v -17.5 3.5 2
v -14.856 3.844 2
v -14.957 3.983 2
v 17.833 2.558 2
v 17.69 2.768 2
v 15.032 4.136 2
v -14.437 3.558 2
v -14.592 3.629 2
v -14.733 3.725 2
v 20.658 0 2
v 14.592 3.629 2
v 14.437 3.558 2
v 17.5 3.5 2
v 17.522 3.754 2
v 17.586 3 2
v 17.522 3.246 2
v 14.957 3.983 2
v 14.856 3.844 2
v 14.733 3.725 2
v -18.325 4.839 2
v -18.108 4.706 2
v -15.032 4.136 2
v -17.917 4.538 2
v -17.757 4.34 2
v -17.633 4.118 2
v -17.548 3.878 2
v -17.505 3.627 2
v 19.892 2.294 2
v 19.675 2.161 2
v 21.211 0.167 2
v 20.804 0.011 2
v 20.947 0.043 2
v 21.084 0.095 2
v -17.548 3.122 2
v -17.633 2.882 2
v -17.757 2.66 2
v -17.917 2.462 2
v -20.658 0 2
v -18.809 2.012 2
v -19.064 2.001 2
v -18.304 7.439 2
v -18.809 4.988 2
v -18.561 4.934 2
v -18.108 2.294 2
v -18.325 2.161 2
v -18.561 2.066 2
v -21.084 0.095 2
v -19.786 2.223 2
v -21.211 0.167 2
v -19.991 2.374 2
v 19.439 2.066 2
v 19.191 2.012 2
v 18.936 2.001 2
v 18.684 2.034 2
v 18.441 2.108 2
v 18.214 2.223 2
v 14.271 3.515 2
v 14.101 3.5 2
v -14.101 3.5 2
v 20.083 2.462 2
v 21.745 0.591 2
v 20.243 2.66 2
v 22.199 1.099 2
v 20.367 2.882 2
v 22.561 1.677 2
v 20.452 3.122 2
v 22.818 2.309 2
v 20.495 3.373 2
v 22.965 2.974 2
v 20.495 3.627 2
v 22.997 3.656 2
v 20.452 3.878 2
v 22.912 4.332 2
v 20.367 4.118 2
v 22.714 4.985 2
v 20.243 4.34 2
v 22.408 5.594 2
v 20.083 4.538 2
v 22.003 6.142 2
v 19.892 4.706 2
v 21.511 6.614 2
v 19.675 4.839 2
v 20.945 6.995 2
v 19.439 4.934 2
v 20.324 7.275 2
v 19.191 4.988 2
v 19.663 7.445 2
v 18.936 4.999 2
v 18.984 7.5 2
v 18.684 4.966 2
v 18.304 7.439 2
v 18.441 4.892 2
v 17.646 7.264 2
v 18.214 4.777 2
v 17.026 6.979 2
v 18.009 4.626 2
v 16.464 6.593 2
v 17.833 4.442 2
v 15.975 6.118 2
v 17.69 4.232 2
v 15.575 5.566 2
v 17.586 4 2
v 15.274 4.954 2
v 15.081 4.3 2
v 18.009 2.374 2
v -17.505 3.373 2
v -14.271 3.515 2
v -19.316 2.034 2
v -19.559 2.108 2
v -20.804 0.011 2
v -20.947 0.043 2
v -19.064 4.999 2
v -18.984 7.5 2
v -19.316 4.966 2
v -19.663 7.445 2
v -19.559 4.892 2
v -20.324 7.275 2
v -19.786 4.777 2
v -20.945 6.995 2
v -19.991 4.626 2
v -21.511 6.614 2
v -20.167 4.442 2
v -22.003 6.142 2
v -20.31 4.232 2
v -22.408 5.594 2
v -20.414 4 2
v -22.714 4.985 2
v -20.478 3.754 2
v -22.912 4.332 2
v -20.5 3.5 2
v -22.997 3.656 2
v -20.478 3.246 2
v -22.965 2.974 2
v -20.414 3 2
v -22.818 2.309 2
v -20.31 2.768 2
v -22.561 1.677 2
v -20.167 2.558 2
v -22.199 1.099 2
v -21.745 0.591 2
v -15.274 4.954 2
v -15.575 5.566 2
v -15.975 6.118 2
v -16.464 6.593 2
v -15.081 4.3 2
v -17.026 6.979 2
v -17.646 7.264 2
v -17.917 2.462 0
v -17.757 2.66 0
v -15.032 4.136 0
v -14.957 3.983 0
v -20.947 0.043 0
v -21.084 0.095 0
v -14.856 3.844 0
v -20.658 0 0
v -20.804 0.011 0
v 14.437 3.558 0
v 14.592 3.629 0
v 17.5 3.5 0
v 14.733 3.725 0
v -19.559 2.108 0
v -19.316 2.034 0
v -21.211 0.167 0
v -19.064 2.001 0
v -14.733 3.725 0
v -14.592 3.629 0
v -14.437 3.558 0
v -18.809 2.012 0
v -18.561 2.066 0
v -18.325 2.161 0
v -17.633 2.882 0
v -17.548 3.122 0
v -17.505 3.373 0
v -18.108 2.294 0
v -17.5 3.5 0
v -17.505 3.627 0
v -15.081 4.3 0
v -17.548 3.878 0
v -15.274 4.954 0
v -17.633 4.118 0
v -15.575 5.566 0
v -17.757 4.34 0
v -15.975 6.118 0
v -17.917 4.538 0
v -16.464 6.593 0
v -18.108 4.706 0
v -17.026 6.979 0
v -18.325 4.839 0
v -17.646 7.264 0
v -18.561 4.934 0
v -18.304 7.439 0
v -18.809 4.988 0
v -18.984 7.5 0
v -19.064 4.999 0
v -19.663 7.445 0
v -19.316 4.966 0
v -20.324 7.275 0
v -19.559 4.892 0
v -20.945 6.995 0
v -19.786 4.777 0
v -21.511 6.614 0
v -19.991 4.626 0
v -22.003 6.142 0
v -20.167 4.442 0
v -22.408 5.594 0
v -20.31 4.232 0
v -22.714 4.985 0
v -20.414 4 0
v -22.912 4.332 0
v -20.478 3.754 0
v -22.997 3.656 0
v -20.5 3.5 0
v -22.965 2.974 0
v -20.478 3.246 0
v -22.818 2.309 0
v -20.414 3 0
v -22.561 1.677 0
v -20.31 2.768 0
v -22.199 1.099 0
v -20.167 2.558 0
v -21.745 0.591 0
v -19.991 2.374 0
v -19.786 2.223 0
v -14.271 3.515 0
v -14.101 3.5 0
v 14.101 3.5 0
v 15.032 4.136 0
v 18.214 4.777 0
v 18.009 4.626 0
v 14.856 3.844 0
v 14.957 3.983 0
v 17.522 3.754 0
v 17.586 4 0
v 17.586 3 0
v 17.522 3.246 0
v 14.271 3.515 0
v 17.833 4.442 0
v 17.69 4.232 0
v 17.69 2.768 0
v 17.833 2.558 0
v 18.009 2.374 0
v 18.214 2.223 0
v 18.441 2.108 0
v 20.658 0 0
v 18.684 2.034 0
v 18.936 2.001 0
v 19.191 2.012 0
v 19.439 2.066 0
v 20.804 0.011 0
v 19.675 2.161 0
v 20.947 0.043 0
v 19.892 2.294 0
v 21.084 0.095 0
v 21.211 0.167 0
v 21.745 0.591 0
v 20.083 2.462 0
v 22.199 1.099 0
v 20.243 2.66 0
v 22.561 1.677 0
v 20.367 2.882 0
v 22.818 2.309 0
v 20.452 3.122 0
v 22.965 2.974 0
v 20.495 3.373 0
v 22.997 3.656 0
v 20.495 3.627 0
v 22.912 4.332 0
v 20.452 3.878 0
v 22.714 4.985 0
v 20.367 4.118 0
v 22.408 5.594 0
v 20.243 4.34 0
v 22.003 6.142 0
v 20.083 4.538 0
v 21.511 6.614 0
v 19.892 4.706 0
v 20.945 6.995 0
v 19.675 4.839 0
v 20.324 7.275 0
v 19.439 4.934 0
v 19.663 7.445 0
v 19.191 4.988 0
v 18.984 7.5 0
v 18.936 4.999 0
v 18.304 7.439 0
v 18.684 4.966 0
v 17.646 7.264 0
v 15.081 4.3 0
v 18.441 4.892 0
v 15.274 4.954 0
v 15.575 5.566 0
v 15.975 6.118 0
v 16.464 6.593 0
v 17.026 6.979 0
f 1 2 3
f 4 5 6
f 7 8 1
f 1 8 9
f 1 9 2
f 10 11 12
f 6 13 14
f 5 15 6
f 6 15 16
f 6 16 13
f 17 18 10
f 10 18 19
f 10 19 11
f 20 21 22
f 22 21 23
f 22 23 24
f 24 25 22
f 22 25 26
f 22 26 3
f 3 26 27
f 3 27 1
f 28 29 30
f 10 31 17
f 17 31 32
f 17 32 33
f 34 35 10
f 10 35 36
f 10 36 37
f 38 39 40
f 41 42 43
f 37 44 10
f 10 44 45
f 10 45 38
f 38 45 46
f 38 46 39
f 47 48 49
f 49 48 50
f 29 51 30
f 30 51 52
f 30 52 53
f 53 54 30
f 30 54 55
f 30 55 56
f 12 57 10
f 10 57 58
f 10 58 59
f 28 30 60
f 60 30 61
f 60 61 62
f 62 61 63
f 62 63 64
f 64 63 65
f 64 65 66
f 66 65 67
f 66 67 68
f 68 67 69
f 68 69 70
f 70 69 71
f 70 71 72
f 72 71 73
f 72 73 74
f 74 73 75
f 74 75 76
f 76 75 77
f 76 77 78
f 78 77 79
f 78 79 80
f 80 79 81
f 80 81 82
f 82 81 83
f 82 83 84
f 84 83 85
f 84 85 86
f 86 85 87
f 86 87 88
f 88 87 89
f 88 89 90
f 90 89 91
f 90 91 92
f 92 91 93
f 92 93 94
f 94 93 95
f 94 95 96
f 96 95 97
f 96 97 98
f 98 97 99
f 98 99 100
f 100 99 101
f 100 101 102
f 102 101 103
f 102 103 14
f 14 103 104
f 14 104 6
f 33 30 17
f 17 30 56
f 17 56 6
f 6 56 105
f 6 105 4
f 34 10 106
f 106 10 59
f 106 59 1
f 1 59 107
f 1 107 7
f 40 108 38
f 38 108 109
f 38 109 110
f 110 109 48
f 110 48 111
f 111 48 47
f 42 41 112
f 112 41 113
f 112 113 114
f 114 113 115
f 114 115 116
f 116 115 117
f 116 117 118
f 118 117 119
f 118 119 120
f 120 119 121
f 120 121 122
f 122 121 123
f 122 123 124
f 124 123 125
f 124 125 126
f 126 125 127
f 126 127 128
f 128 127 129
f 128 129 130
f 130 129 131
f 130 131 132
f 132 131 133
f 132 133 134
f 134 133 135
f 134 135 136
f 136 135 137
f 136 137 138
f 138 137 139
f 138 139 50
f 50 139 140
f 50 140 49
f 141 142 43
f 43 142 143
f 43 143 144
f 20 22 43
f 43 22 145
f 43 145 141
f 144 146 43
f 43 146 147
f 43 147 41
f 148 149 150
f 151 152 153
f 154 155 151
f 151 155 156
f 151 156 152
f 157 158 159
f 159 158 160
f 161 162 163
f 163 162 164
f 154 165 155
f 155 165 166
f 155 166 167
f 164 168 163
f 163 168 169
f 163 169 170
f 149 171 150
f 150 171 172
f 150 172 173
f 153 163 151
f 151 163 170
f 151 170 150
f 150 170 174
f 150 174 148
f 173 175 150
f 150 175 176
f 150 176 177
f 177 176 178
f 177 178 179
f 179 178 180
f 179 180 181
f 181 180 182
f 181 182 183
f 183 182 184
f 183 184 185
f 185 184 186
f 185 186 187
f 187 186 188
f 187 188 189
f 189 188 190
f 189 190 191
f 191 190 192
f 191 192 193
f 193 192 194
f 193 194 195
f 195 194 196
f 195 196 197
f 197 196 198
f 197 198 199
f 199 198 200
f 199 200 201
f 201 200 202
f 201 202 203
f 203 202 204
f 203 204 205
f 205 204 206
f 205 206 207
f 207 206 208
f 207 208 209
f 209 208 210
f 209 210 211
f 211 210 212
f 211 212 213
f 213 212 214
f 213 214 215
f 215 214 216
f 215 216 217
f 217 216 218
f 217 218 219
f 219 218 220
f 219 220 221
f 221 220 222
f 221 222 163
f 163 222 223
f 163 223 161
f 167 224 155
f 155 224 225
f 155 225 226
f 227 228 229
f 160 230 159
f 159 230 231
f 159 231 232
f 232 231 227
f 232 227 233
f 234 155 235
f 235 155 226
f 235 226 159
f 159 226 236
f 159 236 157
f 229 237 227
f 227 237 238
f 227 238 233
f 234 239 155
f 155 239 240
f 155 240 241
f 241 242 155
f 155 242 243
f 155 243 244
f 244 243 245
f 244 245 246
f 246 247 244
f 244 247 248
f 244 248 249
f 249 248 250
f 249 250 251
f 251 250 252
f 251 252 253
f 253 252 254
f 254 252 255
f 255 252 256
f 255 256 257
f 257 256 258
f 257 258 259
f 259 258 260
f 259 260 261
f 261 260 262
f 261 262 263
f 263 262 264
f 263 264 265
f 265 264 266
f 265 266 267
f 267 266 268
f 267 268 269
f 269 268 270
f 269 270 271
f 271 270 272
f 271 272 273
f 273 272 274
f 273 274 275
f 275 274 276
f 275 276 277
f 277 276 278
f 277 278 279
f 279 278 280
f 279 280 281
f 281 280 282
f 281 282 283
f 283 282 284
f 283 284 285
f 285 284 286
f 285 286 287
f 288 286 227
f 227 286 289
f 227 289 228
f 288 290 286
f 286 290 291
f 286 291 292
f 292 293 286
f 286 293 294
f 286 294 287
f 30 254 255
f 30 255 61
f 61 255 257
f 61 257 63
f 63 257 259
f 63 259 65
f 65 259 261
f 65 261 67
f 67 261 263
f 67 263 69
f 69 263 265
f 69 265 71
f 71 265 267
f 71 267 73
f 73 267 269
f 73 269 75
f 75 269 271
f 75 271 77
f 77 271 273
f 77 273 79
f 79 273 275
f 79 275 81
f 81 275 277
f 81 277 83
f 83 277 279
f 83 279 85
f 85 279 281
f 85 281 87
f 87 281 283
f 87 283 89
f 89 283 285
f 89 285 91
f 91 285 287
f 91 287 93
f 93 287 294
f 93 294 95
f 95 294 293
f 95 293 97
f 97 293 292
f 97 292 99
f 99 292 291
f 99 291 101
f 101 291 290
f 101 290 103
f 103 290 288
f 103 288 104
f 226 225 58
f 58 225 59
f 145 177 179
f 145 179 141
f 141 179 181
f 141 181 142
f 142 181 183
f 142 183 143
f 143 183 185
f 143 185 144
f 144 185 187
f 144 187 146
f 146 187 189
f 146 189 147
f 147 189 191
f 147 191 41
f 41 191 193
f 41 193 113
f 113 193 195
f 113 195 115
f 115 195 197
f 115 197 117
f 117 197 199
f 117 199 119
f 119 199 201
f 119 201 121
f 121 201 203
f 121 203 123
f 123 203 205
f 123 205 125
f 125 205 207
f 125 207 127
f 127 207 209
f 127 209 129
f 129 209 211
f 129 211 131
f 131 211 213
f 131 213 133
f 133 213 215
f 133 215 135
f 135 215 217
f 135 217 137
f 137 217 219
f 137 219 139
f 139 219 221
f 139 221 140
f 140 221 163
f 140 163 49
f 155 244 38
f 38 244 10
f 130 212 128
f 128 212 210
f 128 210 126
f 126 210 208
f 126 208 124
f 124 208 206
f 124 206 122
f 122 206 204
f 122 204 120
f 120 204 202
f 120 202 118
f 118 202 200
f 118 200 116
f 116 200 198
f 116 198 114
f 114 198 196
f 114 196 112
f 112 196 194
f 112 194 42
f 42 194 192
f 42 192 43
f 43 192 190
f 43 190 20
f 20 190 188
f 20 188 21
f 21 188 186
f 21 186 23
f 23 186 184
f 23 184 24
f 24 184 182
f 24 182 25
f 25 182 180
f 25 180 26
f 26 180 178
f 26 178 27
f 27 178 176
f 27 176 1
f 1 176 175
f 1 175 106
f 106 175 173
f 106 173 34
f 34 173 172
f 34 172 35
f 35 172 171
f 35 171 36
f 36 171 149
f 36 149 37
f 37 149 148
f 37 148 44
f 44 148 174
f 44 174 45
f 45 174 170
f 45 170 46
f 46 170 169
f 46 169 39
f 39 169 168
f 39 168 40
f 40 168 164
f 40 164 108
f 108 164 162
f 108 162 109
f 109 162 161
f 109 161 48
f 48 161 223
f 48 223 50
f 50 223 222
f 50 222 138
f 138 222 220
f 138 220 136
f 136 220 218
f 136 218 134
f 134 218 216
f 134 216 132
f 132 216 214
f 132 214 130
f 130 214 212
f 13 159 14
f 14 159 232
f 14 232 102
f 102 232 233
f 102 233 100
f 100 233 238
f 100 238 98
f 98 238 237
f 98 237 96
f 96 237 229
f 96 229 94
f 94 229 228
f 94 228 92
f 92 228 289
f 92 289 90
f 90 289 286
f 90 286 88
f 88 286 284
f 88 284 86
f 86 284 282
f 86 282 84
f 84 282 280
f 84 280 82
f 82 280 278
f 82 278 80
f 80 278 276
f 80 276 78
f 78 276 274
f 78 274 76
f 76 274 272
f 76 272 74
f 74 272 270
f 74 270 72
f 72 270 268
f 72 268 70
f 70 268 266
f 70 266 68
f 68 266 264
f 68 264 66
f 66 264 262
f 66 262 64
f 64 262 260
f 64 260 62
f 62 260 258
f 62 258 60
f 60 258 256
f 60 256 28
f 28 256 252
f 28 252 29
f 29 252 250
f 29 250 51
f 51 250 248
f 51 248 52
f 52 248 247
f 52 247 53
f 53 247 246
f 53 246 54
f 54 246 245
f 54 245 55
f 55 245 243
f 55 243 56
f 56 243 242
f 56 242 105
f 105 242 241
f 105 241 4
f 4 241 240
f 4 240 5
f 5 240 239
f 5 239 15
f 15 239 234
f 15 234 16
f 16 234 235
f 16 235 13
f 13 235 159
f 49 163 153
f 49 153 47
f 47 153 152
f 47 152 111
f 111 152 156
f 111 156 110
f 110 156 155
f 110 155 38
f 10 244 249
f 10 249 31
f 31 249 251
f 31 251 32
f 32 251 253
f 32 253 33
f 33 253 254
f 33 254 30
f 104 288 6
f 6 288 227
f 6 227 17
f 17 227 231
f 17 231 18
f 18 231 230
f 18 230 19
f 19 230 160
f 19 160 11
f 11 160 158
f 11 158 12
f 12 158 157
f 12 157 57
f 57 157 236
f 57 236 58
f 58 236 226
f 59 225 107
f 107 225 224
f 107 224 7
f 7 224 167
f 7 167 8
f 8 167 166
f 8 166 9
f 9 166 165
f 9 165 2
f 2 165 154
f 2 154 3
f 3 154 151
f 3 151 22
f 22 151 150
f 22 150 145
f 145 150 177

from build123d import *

# Parameters (mm, degrees)
CROQUIS1_R              = 1.5
SALIENTE_EXTRUIR1_DEPTH = 2
REDONDEO1_R             = 1


with BuildPart() as part:
    # Croquis1 → Saliente-Extruir1 (new body)
    with BuildSketch(Plane.XY):
        with BuildLine():
            Line((15, 3.5), (-15, 3.5))
            ThreePointArc((-15, 3.5), (-21.031506006, 6.945719569), (-20.936491673, 0))
            Line((-20.936491673, 0), (20.936491673, 0))
            ThreePointArc((20.936491673, 0), (21.031506006, 6.945719569), (15, 3.5))
        make_face()
        with Locations((-19, 3.5)):
            Circle(CROQUIS1_R, mode=Mode.SUBTRACT)
        with Locations((19, 3.5)):
            Circle(CROQUIS1_R, mode=Mode.SUBTRACT)
    extrude(amount=SALIENTE_EXTRUIR1_DEPTH)

    # Redondeo1
    redondeo1_edges = [part.edges().sort_by_distance(p)[0] for p in [
        (20.936491673, 0, 1),
        (-20.936491673, 0, 1),
        (-15, 3.5, 1),
        (15, 3.5, 1),
    ]]
    fillet(redondeo1_edges, radius=REDONDEO1_R)


solid = part.part
